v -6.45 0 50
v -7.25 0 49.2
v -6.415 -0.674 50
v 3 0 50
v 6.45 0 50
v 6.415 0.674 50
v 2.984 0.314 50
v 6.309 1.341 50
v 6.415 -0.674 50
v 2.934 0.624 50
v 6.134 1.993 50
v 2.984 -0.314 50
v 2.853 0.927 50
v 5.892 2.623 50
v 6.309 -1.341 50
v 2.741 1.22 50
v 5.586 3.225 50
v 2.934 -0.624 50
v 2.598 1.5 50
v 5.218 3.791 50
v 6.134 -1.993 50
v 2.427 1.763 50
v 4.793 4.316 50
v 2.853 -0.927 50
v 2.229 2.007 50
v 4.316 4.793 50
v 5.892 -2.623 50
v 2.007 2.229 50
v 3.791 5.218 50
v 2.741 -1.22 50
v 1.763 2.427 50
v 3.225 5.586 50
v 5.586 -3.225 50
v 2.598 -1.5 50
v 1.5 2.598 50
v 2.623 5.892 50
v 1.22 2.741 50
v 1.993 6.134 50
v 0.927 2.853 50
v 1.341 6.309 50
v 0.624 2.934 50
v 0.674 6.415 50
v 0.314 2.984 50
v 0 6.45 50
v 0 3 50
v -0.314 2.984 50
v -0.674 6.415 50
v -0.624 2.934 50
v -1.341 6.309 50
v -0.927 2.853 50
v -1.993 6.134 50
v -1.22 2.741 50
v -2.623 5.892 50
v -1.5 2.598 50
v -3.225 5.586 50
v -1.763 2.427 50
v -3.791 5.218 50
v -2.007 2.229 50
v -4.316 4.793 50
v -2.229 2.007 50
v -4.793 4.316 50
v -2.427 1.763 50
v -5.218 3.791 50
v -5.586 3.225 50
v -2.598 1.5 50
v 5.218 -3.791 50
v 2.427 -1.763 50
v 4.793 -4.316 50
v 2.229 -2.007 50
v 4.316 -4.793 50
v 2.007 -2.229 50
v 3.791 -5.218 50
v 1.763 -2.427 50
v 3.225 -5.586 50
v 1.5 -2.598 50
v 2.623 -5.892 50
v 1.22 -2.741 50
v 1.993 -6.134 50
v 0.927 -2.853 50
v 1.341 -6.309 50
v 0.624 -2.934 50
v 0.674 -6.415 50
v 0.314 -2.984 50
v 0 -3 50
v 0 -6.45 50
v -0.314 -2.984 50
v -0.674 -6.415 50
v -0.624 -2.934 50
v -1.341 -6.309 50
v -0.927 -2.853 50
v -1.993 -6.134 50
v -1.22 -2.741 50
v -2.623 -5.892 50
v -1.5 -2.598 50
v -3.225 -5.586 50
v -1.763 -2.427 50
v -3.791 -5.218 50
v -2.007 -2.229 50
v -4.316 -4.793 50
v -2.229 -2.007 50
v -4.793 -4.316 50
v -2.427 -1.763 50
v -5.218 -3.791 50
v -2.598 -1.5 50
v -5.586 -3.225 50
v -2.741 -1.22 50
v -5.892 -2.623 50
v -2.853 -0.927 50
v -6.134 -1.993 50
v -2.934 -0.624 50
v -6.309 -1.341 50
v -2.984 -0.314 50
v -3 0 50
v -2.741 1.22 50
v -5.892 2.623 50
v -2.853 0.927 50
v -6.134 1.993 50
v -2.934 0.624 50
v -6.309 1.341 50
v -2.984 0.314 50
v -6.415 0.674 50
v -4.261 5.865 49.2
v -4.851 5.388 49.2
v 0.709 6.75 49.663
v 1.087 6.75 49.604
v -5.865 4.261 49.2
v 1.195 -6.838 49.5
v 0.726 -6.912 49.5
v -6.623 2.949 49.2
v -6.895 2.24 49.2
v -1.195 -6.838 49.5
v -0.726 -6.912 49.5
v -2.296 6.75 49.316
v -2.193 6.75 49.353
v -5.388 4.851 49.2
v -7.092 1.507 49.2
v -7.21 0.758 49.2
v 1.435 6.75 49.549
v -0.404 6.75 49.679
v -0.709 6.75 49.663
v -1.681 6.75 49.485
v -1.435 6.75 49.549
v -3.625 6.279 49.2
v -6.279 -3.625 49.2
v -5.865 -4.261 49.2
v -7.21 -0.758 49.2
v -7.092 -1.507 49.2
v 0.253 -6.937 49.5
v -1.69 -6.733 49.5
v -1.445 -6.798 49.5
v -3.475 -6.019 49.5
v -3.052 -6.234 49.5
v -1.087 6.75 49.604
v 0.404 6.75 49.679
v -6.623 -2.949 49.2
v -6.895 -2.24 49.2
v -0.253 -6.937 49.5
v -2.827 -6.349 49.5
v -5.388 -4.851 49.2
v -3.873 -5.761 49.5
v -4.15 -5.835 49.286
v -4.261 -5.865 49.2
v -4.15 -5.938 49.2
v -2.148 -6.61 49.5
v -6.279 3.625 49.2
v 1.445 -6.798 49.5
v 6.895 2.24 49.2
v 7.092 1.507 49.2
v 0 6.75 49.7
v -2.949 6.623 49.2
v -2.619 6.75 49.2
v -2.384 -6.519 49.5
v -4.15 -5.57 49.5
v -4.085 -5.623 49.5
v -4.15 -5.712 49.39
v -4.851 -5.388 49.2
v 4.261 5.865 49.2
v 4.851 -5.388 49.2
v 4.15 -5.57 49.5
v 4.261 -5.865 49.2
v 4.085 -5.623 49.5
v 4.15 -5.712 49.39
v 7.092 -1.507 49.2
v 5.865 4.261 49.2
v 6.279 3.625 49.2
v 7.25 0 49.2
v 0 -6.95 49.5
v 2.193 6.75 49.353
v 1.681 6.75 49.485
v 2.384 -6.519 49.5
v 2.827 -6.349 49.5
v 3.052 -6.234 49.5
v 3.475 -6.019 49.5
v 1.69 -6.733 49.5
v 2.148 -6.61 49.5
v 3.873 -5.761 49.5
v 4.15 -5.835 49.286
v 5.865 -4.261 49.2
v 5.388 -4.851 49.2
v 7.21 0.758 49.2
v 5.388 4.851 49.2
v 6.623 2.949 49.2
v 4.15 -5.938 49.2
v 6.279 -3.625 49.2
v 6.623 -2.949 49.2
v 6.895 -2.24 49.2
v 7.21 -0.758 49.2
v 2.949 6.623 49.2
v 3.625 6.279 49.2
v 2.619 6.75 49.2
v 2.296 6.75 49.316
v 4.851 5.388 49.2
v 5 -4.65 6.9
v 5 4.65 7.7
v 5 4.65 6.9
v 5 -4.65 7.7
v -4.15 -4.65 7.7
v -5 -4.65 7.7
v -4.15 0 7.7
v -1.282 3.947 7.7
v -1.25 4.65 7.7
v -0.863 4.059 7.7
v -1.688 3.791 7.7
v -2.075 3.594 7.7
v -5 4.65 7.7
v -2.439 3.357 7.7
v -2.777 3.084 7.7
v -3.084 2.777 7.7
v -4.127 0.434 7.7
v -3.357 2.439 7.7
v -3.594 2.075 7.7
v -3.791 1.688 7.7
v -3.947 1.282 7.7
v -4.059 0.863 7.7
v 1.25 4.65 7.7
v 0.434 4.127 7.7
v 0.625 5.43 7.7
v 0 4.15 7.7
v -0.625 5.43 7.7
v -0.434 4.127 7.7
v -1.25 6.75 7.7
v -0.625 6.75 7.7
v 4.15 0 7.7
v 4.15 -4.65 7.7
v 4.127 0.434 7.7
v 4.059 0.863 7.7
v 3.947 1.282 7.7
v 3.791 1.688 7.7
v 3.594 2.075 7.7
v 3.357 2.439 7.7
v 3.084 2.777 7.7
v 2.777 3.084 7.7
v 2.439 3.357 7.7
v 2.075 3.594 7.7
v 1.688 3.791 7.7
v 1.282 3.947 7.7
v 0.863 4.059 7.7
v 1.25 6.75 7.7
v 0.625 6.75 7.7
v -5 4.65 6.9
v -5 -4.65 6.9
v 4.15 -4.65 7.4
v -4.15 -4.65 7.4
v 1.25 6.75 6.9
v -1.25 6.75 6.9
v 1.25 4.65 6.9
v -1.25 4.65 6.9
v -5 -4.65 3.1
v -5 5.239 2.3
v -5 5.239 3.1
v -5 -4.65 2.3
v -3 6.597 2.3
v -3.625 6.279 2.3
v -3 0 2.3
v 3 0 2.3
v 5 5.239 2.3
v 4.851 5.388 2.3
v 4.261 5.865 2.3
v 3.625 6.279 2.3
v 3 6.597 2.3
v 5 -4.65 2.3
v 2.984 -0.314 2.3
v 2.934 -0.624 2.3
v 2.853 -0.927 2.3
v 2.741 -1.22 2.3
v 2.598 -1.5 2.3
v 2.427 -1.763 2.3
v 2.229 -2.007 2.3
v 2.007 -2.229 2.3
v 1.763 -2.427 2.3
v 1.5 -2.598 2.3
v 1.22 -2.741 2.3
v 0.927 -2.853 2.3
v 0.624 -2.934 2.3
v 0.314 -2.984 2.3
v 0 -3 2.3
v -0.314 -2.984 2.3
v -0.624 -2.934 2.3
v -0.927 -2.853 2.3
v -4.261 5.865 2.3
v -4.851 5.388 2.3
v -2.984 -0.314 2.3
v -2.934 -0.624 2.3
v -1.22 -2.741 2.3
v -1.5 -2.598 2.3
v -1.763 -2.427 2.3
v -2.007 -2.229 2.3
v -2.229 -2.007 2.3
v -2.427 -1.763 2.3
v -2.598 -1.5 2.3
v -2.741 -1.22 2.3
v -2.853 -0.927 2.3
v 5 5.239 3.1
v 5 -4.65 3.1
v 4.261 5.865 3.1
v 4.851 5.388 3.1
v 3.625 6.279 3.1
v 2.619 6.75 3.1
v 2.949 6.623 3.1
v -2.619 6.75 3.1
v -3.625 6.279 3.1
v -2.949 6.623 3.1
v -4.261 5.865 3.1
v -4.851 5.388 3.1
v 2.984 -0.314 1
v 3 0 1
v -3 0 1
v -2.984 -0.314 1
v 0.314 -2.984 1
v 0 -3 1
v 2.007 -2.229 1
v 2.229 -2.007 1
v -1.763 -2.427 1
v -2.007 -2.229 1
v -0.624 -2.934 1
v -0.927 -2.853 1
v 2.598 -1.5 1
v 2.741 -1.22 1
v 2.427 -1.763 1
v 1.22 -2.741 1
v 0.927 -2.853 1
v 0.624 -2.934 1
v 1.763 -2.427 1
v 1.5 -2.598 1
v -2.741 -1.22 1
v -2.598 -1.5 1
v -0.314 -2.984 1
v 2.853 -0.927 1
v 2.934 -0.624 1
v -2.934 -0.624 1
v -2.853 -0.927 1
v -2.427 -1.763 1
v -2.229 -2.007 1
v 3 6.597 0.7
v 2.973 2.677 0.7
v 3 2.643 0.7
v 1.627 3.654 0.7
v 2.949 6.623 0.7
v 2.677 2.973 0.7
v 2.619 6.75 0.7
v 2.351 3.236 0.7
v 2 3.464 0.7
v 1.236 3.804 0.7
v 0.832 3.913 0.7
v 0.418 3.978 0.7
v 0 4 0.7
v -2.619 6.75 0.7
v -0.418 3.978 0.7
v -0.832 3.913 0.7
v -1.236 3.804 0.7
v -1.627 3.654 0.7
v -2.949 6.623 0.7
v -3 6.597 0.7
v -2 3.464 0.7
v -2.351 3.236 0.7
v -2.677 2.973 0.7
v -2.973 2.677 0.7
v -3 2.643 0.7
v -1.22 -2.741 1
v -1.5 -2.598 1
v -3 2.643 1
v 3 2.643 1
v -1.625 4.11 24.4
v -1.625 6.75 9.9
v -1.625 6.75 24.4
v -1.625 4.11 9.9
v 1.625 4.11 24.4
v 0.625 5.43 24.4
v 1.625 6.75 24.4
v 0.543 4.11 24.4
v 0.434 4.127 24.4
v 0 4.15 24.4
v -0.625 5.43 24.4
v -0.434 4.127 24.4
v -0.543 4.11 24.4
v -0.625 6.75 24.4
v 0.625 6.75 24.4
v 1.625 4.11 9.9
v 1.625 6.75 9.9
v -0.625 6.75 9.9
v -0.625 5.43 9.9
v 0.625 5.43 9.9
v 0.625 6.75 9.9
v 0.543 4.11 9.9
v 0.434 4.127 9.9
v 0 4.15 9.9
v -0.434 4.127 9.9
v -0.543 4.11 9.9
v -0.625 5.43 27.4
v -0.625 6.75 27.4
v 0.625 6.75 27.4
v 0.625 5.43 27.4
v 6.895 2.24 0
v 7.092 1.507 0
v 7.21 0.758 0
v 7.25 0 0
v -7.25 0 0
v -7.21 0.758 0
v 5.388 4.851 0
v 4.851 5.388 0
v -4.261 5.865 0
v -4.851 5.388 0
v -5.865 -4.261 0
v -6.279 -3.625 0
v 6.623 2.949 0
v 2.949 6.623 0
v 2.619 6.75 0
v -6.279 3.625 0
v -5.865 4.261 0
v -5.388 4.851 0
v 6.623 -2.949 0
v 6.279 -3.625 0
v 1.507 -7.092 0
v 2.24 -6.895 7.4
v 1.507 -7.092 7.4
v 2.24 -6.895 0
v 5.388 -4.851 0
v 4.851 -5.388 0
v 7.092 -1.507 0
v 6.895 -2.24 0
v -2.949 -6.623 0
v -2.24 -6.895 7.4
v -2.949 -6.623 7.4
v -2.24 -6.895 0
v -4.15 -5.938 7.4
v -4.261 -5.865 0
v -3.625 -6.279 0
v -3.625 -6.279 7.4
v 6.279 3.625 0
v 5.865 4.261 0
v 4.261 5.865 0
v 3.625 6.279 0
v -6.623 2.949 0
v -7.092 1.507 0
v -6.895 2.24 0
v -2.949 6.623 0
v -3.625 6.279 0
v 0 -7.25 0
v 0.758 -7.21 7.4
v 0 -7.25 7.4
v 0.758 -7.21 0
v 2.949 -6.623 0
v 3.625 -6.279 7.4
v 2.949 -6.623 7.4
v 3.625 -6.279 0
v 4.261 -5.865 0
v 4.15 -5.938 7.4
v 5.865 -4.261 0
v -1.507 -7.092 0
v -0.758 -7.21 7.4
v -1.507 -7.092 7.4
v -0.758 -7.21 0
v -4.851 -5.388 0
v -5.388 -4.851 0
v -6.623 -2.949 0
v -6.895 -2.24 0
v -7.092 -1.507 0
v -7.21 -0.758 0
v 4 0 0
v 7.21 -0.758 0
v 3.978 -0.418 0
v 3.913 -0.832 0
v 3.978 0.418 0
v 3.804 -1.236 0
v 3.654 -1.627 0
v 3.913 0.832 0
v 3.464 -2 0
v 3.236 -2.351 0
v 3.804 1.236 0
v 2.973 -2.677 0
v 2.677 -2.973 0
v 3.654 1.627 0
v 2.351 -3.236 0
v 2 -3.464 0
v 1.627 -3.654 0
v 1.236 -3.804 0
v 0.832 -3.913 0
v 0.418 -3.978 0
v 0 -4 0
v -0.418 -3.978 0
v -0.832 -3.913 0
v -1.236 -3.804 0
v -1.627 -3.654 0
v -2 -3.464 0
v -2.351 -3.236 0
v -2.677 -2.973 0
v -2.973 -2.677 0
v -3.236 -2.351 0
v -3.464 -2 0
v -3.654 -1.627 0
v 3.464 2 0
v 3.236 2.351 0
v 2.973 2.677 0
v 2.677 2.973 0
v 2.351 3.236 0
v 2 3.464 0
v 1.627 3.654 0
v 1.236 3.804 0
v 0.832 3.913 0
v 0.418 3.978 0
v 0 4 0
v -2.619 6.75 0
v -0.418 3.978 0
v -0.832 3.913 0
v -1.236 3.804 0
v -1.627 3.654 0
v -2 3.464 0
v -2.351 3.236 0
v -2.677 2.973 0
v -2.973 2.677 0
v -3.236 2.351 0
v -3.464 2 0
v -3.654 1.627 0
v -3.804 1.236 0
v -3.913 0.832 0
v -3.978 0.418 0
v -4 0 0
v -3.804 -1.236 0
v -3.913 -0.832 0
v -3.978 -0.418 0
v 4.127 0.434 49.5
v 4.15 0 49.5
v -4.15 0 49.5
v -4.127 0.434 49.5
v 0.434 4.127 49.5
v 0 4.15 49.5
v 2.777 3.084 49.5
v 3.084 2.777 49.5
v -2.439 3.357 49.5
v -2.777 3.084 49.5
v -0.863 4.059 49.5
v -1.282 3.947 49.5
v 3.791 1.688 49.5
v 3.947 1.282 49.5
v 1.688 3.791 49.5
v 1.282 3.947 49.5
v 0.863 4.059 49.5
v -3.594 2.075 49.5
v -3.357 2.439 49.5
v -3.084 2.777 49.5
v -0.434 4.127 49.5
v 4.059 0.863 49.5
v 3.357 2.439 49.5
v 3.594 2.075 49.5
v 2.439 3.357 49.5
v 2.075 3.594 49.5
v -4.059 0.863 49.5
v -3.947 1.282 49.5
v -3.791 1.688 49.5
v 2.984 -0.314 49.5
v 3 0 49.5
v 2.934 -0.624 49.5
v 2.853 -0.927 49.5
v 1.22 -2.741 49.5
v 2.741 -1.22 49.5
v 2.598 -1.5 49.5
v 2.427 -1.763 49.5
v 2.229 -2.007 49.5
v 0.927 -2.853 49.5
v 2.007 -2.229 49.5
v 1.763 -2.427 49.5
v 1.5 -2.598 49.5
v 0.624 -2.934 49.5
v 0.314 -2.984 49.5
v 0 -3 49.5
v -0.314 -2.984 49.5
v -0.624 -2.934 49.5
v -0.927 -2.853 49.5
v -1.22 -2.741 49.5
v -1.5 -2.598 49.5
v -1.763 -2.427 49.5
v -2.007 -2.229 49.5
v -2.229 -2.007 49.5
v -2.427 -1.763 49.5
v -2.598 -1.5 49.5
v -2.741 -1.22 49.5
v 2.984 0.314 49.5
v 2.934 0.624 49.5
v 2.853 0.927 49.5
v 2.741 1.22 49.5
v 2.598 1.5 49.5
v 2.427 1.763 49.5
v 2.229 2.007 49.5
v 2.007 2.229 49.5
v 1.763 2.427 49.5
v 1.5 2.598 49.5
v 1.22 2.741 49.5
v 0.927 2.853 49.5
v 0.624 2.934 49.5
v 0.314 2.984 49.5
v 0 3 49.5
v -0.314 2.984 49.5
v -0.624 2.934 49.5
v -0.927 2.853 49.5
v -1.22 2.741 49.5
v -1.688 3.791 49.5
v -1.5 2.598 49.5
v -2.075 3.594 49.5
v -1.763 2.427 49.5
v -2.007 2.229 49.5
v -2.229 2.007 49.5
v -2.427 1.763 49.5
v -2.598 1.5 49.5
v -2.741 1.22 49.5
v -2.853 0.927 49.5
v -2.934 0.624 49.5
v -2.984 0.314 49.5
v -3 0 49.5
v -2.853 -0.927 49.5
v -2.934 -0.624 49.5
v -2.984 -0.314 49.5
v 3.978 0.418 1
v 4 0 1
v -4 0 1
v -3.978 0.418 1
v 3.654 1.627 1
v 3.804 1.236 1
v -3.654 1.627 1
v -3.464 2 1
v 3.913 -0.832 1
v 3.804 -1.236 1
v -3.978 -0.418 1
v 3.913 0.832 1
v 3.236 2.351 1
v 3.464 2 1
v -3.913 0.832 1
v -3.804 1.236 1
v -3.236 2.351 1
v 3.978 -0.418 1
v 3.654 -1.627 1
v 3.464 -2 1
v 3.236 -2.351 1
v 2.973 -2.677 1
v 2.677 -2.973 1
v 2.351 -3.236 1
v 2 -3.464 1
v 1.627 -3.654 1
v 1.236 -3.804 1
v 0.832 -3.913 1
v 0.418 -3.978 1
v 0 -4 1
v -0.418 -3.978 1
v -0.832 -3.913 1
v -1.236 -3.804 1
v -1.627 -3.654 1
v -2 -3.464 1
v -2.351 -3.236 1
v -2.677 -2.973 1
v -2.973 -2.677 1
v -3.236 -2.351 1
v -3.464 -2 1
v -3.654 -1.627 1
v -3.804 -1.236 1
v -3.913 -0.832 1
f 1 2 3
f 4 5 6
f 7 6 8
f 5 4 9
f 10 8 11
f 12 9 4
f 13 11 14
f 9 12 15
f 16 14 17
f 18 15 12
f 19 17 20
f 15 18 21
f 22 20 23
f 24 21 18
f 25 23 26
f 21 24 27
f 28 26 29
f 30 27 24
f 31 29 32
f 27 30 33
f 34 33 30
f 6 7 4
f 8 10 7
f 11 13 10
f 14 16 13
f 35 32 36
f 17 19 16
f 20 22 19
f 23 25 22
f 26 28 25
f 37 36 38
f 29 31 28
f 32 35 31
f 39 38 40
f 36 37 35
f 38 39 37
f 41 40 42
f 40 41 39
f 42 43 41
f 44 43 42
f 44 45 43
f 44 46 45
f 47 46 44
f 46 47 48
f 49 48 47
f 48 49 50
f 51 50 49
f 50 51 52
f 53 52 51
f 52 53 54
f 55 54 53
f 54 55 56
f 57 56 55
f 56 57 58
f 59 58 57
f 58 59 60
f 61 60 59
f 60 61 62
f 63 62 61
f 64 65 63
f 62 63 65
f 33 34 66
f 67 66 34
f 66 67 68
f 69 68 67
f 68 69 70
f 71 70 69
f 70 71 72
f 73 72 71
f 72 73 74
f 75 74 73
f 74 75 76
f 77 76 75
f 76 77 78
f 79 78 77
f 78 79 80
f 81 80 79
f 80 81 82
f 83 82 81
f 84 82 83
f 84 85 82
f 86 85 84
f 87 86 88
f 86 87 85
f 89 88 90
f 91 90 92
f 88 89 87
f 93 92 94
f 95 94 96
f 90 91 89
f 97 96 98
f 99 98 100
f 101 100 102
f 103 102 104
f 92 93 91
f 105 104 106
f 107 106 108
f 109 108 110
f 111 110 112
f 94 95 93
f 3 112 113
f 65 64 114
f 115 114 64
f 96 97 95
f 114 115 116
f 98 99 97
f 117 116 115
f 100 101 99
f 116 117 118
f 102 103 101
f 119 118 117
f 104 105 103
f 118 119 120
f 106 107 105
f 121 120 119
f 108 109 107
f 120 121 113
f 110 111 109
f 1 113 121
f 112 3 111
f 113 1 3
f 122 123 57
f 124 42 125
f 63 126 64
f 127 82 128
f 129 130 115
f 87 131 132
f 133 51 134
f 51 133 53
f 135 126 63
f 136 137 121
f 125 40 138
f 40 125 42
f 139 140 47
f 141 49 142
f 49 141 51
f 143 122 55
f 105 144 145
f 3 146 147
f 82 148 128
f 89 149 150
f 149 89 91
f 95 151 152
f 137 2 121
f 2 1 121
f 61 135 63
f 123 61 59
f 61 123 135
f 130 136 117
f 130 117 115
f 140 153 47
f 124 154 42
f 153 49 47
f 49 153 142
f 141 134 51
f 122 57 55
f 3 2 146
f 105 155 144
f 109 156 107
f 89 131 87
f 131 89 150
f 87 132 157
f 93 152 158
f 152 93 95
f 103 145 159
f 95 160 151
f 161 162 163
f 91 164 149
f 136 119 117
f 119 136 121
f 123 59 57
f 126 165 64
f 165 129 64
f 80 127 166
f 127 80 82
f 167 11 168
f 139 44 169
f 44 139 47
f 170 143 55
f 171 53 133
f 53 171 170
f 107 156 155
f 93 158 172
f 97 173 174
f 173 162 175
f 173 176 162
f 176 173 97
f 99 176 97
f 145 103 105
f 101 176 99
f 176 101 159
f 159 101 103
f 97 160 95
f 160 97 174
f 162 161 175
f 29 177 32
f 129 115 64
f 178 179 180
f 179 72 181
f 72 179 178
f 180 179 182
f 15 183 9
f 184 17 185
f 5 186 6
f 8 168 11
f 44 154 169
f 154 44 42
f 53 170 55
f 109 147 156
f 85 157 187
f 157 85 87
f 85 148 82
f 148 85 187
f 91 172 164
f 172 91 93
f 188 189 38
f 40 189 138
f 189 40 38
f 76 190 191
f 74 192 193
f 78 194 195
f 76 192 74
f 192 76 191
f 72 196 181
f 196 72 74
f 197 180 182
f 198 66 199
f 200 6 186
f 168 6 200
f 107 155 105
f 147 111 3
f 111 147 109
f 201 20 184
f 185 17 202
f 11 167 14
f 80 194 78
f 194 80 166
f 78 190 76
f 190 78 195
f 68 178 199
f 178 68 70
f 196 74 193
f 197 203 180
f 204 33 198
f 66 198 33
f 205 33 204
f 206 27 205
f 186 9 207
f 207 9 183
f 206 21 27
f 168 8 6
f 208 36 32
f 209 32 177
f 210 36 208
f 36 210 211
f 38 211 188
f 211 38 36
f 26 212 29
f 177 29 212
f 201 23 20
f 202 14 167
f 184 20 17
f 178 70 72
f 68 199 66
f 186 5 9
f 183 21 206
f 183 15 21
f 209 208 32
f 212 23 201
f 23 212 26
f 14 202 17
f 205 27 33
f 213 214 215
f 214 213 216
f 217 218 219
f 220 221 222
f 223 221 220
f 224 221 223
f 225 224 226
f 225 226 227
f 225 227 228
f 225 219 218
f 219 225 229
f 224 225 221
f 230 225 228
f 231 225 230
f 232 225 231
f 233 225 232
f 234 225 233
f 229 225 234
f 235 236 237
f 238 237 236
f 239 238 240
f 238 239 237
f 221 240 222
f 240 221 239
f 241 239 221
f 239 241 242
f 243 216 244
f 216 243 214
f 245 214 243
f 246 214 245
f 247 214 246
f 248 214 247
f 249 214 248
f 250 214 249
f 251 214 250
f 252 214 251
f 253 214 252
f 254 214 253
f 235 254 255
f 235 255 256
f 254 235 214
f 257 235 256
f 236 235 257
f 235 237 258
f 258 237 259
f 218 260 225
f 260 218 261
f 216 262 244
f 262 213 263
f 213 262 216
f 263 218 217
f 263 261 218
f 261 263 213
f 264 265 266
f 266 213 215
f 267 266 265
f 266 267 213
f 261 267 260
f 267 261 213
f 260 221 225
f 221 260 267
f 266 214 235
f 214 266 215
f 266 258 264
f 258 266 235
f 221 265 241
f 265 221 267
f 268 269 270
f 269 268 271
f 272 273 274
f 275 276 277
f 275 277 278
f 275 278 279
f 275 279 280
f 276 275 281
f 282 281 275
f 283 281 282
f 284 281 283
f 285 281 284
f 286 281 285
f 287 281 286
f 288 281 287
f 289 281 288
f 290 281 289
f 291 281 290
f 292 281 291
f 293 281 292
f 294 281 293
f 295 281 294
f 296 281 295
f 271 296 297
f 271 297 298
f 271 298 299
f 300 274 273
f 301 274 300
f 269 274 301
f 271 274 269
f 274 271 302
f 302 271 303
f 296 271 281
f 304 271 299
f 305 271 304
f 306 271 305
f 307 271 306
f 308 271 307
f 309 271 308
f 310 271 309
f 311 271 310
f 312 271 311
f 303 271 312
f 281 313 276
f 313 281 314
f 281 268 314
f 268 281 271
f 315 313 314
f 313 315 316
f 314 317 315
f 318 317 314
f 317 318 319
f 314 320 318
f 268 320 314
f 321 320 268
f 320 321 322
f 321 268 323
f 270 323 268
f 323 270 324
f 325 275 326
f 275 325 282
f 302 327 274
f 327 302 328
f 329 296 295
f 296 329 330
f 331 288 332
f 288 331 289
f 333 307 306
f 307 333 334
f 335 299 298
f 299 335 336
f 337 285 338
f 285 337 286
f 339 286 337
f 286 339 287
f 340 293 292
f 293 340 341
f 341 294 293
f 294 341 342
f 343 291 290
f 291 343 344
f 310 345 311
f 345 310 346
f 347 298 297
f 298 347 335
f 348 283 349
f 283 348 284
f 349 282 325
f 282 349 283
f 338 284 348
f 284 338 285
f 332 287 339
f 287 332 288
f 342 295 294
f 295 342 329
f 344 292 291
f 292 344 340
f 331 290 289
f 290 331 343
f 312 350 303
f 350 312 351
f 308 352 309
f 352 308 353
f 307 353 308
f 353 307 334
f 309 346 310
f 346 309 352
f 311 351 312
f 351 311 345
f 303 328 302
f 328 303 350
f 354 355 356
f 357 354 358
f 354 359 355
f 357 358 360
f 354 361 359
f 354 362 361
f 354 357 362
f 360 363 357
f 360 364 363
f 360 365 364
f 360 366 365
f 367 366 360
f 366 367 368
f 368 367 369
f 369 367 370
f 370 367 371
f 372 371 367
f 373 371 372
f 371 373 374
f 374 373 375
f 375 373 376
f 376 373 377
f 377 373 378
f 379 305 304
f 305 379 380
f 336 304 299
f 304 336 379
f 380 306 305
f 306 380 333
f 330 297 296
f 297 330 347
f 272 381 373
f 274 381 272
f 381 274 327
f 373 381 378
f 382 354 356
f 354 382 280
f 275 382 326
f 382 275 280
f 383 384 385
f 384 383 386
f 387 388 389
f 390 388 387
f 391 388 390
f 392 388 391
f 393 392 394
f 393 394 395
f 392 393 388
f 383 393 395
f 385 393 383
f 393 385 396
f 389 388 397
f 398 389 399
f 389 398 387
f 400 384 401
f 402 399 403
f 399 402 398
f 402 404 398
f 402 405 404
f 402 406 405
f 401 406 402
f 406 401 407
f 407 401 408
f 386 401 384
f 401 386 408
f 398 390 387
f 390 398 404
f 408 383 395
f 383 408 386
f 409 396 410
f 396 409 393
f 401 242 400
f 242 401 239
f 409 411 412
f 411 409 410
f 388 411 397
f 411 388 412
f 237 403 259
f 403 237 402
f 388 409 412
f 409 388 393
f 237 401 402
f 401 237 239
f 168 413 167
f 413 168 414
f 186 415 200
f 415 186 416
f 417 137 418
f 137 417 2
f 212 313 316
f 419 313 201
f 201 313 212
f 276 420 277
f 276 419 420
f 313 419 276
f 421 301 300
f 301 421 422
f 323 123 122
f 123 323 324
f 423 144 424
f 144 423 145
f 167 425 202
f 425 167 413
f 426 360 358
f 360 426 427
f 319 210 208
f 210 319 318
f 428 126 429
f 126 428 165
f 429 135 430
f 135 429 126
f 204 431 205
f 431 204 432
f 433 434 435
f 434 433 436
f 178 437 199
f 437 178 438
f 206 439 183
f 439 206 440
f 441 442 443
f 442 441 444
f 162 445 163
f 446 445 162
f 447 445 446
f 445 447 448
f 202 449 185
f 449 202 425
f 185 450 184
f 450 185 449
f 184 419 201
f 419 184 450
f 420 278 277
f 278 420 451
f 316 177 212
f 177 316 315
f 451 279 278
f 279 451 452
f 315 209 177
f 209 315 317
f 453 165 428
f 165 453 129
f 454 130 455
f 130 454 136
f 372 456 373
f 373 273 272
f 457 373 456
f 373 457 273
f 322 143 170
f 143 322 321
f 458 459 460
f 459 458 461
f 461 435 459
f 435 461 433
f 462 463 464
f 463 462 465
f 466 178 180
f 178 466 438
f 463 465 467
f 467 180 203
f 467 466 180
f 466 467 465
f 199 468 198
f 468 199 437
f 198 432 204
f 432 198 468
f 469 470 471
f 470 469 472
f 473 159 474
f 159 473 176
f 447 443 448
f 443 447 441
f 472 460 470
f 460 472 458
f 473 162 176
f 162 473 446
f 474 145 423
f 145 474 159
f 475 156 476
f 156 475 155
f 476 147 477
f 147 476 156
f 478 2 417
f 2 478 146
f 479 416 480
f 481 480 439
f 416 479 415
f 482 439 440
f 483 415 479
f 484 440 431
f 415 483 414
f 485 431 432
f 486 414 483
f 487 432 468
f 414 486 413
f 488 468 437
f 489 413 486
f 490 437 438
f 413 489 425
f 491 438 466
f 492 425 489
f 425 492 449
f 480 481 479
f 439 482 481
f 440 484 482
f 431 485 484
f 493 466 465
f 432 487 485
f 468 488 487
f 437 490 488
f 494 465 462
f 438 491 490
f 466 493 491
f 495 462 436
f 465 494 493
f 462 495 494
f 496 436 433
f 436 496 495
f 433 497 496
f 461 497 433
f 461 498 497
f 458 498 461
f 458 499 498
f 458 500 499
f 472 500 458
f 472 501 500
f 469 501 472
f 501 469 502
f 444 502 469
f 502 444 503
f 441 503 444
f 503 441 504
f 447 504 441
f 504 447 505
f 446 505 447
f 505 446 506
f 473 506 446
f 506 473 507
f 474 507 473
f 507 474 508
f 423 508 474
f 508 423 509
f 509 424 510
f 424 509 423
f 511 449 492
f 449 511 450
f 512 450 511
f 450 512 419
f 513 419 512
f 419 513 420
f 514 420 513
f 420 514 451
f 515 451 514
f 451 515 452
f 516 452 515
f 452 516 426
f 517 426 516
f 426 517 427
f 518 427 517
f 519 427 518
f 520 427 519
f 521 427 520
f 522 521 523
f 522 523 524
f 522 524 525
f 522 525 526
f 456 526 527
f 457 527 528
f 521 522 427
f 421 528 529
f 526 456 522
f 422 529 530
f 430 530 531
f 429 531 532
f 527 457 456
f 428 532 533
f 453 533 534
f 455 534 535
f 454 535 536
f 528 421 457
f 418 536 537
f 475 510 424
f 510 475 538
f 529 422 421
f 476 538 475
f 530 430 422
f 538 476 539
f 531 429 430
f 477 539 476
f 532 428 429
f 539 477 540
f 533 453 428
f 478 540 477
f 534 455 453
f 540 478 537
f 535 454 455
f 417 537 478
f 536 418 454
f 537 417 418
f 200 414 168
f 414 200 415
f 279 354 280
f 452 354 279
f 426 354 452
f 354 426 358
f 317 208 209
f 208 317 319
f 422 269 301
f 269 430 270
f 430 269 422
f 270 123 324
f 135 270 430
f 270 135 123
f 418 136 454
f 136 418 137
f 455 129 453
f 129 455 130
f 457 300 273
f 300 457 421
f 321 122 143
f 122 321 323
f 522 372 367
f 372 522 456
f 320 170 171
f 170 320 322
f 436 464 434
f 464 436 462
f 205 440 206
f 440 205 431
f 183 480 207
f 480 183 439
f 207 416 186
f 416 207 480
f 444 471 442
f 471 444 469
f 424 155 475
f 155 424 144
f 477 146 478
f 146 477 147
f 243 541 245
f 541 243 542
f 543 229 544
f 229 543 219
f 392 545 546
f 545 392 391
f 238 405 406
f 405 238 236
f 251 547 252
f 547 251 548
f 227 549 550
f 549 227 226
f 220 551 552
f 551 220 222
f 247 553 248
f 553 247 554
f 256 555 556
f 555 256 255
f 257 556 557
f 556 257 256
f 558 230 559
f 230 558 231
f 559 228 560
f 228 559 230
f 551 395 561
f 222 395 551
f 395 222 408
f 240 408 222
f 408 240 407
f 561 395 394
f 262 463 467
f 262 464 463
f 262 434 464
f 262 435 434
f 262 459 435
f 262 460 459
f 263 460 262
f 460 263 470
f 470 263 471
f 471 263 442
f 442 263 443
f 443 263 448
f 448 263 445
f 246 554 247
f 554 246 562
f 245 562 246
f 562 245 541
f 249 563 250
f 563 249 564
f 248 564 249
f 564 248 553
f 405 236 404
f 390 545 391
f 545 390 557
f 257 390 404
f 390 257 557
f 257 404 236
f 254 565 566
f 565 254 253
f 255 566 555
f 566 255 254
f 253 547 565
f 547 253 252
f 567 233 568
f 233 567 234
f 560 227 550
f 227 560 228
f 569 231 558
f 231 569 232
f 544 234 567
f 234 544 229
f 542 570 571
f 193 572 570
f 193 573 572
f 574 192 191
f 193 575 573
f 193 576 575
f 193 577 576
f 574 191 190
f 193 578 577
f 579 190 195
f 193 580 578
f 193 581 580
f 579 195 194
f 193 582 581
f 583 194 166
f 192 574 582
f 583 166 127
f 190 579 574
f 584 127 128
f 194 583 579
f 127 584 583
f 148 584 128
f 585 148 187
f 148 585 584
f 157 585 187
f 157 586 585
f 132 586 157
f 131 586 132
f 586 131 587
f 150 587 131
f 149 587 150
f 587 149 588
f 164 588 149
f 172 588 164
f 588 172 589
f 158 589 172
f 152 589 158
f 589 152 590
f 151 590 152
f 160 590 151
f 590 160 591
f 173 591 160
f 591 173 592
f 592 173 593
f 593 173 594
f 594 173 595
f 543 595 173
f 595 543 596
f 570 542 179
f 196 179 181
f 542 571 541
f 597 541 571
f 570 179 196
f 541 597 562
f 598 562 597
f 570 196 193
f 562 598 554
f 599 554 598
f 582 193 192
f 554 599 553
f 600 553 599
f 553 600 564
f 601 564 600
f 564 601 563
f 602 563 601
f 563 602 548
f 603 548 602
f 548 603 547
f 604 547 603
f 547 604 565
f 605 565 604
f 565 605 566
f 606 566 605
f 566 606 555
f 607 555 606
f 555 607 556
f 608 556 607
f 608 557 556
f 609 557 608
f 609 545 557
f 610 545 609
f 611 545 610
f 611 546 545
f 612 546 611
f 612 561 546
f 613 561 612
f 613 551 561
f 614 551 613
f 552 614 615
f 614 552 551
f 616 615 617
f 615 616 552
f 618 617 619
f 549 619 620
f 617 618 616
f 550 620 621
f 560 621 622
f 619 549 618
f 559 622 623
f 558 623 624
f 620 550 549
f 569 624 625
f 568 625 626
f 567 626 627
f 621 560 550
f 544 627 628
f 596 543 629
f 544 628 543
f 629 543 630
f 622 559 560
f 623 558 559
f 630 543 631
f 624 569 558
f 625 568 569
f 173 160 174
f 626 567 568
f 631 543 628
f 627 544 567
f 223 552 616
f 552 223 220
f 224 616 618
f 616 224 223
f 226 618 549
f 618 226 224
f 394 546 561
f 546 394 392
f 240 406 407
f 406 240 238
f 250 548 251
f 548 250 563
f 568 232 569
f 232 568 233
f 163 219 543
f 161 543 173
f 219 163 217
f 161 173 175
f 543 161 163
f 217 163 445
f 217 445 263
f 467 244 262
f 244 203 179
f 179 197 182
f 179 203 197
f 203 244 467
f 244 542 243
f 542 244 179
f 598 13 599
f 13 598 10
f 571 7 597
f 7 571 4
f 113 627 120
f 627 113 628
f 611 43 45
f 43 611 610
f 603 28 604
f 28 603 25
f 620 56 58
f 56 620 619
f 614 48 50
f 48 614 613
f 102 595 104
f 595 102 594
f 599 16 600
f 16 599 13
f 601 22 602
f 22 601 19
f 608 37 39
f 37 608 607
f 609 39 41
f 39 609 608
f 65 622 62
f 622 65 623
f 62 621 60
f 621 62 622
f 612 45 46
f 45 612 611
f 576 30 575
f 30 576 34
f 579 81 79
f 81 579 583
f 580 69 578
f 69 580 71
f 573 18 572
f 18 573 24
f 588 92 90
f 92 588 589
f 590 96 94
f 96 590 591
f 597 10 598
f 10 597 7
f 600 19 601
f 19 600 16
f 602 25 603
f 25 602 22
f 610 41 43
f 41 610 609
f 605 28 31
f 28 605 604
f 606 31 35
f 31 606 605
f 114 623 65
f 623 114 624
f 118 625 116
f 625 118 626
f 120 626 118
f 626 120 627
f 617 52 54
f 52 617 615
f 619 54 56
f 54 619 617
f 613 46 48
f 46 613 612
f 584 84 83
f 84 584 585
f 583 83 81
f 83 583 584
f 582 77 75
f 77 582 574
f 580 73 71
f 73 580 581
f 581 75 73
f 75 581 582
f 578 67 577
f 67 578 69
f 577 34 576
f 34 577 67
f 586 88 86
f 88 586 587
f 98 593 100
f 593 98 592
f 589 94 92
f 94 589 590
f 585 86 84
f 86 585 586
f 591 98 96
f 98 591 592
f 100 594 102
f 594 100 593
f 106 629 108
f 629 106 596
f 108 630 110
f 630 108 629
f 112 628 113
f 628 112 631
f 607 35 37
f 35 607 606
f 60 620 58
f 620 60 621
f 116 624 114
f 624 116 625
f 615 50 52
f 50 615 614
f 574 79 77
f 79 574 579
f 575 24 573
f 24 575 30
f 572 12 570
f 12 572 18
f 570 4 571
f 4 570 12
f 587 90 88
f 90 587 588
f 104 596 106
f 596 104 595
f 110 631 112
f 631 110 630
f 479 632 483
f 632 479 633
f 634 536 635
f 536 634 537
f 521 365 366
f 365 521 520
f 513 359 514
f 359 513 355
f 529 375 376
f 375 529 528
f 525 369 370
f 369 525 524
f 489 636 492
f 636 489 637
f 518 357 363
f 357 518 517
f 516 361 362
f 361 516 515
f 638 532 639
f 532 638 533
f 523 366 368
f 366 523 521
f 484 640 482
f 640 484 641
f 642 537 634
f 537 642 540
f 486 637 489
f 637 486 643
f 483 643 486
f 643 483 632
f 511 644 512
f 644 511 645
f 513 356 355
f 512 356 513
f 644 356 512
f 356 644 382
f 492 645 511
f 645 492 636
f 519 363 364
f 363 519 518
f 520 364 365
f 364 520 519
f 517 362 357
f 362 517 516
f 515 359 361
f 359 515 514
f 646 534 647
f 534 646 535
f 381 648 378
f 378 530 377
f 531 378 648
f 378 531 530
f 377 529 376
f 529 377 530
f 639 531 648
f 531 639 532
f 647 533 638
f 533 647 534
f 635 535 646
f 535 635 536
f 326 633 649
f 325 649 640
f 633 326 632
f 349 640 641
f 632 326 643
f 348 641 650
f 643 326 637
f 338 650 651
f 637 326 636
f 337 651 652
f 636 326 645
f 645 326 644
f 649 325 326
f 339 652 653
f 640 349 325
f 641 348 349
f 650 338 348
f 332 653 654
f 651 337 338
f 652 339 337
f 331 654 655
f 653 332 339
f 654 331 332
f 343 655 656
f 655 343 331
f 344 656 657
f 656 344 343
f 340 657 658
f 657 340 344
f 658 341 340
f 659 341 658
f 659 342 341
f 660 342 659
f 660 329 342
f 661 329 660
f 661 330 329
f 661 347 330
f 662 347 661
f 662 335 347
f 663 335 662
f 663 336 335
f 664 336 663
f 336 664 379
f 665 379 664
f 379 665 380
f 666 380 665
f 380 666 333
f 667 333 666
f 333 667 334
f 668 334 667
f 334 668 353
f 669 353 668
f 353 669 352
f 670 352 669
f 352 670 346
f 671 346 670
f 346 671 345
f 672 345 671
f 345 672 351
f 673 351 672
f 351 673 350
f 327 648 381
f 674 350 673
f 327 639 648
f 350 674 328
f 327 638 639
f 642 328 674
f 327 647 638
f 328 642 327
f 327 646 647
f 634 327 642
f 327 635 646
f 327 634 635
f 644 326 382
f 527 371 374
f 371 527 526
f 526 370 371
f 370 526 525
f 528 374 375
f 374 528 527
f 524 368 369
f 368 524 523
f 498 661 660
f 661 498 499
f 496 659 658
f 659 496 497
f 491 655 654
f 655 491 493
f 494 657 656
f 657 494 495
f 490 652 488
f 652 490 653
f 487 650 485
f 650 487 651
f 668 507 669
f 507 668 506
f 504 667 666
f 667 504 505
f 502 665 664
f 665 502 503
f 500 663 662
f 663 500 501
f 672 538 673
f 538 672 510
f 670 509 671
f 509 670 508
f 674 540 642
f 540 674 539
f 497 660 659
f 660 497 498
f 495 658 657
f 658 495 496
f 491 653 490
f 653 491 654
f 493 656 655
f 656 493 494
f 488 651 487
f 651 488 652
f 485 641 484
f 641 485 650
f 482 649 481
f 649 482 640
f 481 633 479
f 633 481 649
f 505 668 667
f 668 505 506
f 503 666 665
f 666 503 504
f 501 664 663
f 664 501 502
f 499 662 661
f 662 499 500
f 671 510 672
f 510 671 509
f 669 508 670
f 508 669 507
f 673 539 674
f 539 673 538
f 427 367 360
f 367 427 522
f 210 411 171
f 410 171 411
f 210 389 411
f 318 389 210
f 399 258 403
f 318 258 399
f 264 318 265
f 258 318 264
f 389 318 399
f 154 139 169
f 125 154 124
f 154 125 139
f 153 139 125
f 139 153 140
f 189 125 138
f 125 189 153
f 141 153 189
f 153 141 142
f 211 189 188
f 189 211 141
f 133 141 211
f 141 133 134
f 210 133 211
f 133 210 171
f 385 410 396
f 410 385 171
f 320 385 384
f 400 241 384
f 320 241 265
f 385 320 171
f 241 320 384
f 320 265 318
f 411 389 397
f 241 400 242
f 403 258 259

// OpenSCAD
include <BOSL/constants.scad>
use <BOSL/shapes.scad>
use <BOSL/transforms.scad>
use <BOSL/masks.scad>

//positive terminal minimum 1.0mm (included in height) -- max 5.5mm
//negative terminal minimum diameter 7mm
hAA=50;
dAA=14+0.5;

compressedSpring = 1.6; // trying a flat/hill tab for now
hAAAA=40.5+compressedSpring; 
dAAAA=8.3; 

//Metal Battery Spring Terminals
//additions are for "wiggle room"
slotWidthX = 9.7 + 0.3;
slotDepthY=9.0 + 0.3;
slotThicknessZ=0.40 + 0.40; // metal tab only -- does not count negative spring or positive bump!
tabWidthX=2.5;
tabDepthY=6.0;
tabOffset=0; // in degrees 

//Plastic Reed Switch
reedL = 14.5;
reedW = 3.25;
reedH = 3.14;

//General variables
$fn=60; //circle smoothness
overlap = 1.00; // overlap ensures that subtractions go beyond the edges

topThickness = 0.5;
shiftForward=0.0;


difference() {

  //Outside dimensions of a AA battery
  AA();
  
  //chamfer top edge
  up(hAA) chamfer_cylinder_mask(r=(dAA/2), chamfer=0.8);

  //Cutout for AAAA battery
  forward(shiftForward) up(hAA-hAAAA-topThickness) AAAA();
  forward(shiftForward) up(hAA-hAAAA-topThickness) forward(dAAAA/2) AAAAopening();

  //Positive pole hole
  forward(shiftForward) up(hAA-topThickness) color("green") cyl(d=6, h=topThickness*2, align=V_UP); // hole at top for battery positive to poke through at

  //spring insert for negative pole of battery
  forward(shiftForward) up(hAA-hAAAA-0.2-slotThicknessZ) zrot(180-tabOffset) slot();
  //Downfacing  
  up(hAA-hAAAA-4-slotThicknessZ) zrot(tabOffset) xrot(180) slot();  
  up(hAA-hAAAA-4-slotThicknessZ) zrot(tabOffset) xrot(180) slotopening();  
  //hole for negative spring from device
  forward(shiftForward) color("green") cyl(d=8, h=1, align=V_UP);

  //Flatten holder
  back((dAA/2)-shiftForward+1) color("rosybrown") cuboid([dAA, 3, hAA], align=V_UP); //flatten back
  //forward((dAA/2)+0.25) color("gray") cuboid([dAA, 2, hAA], align=V_UP); //flatten front

  //Reed switch
  up(hAA-hAAAA+2) back((dAA/2)-(reedH/2))  reed();
  
}
  
 //preview
 //up(hAA+10)   slot();

module AA() { 
  color("orange") cyl(d=dAA, h=hAA, align=V_UP); 
}

module AAAA() { 
  color("gold") cyl(d=dAAAA, h=hAAAA, align=V_UP); 
}

module AAAAopening() { 
  color("khaki") cuboid([dAAAA, dAAAA , hAAAA], align=V_UP); 
}


module slot() { 
  color("magenta") cuboid([slotWidthX, slotDepthY, slotThicknessZ], align=V_UP);
  color("deeppink") cyl(d=6, h=slotThicknessZ+1.6, align=V_UP);
  forward((slotDepthY/2)+(tabDepthY/2)) color("hotpink") cuboid([tabWidthX, tabDepthY, slotThicknessZ], align=V_UP);
}

module slotopening() {
  forward(dAA/2) color("pink") cuboid([slotWidthX, dAA, slotThicknessZ], align=V_UP);
  forward(dAA/2) color("lightpink") cuboid([6, dAA, slotThicknessZ+1.6], align=V_UP);
}

module reed() { 
  color("slategray") cuboid([reedW, reedH, reedL], align=V_UP);
  back(1) down(3) color("lightgray") cuboid([1.25, 2.5, reedL+3+3], align=V_UP);
}
